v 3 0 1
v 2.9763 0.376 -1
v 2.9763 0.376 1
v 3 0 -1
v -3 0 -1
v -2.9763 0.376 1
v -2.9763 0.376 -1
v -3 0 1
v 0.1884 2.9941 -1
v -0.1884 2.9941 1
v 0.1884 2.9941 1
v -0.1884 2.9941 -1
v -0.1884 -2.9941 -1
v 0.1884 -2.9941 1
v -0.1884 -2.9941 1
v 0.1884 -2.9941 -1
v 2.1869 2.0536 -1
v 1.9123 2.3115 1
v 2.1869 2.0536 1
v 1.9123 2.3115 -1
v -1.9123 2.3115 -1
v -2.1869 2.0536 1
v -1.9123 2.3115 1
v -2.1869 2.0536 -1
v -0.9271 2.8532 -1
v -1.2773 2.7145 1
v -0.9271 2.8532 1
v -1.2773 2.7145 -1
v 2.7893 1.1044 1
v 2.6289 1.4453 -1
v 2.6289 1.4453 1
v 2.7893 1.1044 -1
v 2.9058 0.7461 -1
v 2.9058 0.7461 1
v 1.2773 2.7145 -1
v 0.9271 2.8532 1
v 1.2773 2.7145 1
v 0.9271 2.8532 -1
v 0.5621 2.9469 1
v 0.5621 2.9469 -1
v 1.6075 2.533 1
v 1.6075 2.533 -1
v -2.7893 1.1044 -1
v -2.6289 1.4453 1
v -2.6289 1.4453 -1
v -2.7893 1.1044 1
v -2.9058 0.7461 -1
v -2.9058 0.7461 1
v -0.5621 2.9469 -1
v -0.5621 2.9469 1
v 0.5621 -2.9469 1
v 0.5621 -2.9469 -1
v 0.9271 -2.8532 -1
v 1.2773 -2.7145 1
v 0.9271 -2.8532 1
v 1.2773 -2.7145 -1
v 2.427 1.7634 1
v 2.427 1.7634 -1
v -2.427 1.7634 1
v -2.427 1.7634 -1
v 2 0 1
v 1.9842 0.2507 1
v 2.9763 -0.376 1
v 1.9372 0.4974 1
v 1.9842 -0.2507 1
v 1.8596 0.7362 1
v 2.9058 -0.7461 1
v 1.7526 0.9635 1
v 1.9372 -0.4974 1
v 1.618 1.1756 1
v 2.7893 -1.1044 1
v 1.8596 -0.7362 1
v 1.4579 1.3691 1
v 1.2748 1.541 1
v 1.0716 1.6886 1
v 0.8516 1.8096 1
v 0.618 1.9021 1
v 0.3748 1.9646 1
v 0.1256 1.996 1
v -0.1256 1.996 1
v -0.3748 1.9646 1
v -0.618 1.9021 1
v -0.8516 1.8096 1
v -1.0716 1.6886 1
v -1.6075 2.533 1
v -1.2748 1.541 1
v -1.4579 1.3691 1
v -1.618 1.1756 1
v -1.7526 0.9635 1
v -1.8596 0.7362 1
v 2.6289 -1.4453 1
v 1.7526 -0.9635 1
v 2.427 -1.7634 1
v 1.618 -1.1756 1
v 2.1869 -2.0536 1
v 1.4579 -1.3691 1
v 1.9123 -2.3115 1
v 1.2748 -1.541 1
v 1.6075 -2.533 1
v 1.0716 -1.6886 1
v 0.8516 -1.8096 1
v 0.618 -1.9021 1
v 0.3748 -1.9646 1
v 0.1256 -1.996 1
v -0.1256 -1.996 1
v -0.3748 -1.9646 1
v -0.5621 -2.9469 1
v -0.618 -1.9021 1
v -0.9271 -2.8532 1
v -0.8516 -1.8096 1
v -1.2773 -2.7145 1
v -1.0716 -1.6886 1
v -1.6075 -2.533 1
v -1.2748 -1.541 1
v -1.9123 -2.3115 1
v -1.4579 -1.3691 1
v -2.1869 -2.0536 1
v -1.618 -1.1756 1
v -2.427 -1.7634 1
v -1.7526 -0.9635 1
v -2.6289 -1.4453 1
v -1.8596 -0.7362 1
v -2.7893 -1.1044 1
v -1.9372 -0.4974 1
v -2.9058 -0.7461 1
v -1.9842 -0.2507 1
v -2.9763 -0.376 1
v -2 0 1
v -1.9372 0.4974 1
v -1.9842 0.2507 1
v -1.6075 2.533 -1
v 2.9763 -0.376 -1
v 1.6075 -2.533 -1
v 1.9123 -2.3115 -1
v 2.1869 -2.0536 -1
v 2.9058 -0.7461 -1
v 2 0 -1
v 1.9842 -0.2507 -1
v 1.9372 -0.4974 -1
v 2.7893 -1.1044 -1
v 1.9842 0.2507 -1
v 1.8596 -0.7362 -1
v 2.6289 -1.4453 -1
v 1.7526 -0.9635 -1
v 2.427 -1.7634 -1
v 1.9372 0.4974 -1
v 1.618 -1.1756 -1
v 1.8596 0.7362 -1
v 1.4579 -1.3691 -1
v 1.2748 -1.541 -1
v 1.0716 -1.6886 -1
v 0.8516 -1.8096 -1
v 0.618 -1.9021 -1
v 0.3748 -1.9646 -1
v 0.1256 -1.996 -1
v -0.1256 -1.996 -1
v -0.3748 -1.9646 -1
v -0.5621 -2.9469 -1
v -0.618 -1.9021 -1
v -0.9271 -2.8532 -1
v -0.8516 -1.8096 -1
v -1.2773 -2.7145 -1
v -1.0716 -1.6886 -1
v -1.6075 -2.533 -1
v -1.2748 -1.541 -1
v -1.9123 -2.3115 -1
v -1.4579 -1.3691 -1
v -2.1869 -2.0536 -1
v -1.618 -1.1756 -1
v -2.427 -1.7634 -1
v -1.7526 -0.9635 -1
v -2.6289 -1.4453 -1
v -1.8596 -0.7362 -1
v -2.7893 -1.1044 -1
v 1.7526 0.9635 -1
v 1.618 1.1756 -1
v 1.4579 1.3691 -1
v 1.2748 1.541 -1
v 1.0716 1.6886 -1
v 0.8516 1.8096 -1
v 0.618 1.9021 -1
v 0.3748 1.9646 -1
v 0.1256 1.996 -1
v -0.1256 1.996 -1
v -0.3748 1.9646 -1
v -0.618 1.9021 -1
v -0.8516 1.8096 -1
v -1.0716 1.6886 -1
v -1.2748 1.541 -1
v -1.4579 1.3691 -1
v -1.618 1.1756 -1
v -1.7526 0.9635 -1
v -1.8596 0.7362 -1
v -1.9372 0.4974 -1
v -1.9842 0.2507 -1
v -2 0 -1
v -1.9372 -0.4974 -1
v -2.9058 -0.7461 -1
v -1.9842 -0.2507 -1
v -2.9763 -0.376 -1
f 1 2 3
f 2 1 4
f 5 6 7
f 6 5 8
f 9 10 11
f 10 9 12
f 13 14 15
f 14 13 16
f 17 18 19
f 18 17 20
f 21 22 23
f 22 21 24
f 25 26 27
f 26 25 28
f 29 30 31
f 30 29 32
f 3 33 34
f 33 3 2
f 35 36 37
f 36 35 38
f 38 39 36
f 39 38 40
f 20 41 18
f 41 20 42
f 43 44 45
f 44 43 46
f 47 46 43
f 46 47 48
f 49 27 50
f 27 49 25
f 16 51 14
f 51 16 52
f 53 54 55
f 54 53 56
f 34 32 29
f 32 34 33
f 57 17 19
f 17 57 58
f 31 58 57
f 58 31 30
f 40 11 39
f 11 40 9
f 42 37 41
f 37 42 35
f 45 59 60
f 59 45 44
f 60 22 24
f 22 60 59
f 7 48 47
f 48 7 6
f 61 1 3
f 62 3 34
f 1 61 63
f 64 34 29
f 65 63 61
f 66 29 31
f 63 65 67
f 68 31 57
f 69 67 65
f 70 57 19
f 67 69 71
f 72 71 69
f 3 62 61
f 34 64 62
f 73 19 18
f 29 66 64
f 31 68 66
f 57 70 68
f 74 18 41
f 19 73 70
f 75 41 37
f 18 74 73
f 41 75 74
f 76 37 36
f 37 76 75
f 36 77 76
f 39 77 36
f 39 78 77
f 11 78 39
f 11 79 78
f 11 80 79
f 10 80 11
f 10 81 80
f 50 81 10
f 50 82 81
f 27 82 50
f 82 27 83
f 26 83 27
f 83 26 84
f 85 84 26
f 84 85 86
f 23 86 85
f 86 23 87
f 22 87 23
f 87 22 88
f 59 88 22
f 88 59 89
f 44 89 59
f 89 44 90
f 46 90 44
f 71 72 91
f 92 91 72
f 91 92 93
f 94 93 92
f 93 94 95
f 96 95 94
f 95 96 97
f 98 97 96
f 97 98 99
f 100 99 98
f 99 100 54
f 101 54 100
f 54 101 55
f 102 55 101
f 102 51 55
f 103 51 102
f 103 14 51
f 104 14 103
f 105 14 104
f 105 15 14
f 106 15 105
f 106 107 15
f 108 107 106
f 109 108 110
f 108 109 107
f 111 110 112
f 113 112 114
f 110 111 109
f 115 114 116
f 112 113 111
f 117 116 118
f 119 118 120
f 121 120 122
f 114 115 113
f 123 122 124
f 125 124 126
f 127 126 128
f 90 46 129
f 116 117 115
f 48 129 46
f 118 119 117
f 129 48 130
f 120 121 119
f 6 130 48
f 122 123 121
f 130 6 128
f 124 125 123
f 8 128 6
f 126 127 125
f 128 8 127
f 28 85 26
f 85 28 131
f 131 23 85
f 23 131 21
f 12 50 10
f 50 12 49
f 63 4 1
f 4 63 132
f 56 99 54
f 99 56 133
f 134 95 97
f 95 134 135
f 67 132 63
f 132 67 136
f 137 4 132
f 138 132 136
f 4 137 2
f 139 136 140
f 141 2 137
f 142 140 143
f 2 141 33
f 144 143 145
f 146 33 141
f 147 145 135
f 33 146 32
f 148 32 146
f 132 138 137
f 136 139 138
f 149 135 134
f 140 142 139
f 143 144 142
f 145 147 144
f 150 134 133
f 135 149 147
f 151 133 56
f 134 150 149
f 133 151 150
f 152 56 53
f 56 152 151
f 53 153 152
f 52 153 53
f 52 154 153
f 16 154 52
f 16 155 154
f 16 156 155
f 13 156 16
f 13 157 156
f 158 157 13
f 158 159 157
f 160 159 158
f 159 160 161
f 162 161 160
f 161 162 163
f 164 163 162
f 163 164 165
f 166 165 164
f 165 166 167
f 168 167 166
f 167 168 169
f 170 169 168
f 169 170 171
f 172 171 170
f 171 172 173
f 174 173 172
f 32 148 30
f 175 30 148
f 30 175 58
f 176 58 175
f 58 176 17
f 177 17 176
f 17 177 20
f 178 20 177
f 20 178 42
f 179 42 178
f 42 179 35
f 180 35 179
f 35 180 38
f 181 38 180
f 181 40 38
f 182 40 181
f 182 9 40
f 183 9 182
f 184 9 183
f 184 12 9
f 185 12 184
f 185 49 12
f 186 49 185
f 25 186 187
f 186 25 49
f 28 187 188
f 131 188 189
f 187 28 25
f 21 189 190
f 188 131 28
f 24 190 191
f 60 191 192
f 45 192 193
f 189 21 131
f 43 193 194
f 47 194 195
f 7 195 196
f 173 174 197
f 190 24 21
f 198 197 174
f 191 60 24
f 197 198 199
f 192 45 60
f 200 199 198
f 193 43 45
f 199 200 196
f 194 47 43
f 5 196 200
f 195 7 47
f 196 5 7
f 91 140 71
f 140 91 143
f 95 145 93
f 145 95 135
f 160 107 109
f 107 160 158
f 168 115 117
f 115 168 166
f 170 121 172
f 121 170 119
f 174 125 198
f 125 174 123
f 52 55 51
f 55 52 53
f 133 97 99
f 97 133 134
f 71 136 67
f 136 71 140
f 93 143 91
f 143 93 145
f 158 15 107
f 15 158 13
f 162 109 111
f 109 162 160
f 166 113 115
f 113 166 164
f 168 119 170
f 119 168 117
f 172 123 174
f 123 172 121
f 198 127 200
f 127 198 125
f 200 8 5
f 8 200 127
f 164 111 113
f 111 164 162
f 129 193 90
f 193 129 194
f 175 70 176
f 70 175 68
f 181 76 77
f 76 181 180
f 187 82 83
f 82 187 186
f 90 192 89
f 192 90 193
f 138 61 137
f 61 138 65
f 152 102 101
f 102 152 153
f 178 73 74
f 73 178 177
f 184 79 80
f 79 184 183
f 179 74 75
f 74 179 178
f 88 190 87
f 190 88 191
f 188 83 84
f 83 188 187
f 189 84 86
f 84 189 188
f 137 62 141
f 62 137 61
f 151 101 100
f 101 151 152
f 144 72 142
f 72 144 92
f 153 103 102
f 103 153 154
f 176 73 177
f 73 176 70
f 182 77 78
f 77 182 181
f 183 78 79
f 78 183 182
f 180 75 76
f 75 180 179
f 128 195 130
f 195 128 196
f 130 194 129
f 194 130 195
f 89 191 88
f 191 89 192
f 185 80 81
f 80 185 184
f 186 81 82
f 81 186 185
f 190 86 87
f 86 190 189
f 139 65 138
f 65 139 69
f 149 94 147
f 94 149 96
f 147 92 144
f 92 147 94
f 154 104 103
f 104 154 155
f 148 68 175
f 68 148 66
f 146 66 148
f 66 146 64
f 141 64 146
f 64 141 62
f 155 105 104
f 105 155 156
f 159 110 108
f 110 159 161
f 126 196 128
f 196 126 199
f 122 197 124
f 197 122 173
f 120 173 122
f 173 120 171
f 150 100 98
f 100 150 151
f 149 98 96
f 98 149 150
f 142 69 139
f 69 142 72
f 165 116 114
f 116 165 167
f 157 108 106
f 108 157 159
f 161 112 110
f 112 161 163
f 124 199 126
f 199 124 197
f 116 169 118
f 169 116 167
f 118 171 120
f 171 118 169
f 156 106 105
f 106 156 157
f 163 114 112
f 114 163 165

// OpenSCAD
$fn = 50;


difference() {
	union() {
		translate(v = [0, 0, -1.0000000000]) {
			cylinder(h = 2, r = 3.0000000000);
		}
	}
	union() {
		translate(v = [0, 0, -100.0000000000]) {
			cylinder(h = 200, r = 2.0000000000);
		}
	}
}
